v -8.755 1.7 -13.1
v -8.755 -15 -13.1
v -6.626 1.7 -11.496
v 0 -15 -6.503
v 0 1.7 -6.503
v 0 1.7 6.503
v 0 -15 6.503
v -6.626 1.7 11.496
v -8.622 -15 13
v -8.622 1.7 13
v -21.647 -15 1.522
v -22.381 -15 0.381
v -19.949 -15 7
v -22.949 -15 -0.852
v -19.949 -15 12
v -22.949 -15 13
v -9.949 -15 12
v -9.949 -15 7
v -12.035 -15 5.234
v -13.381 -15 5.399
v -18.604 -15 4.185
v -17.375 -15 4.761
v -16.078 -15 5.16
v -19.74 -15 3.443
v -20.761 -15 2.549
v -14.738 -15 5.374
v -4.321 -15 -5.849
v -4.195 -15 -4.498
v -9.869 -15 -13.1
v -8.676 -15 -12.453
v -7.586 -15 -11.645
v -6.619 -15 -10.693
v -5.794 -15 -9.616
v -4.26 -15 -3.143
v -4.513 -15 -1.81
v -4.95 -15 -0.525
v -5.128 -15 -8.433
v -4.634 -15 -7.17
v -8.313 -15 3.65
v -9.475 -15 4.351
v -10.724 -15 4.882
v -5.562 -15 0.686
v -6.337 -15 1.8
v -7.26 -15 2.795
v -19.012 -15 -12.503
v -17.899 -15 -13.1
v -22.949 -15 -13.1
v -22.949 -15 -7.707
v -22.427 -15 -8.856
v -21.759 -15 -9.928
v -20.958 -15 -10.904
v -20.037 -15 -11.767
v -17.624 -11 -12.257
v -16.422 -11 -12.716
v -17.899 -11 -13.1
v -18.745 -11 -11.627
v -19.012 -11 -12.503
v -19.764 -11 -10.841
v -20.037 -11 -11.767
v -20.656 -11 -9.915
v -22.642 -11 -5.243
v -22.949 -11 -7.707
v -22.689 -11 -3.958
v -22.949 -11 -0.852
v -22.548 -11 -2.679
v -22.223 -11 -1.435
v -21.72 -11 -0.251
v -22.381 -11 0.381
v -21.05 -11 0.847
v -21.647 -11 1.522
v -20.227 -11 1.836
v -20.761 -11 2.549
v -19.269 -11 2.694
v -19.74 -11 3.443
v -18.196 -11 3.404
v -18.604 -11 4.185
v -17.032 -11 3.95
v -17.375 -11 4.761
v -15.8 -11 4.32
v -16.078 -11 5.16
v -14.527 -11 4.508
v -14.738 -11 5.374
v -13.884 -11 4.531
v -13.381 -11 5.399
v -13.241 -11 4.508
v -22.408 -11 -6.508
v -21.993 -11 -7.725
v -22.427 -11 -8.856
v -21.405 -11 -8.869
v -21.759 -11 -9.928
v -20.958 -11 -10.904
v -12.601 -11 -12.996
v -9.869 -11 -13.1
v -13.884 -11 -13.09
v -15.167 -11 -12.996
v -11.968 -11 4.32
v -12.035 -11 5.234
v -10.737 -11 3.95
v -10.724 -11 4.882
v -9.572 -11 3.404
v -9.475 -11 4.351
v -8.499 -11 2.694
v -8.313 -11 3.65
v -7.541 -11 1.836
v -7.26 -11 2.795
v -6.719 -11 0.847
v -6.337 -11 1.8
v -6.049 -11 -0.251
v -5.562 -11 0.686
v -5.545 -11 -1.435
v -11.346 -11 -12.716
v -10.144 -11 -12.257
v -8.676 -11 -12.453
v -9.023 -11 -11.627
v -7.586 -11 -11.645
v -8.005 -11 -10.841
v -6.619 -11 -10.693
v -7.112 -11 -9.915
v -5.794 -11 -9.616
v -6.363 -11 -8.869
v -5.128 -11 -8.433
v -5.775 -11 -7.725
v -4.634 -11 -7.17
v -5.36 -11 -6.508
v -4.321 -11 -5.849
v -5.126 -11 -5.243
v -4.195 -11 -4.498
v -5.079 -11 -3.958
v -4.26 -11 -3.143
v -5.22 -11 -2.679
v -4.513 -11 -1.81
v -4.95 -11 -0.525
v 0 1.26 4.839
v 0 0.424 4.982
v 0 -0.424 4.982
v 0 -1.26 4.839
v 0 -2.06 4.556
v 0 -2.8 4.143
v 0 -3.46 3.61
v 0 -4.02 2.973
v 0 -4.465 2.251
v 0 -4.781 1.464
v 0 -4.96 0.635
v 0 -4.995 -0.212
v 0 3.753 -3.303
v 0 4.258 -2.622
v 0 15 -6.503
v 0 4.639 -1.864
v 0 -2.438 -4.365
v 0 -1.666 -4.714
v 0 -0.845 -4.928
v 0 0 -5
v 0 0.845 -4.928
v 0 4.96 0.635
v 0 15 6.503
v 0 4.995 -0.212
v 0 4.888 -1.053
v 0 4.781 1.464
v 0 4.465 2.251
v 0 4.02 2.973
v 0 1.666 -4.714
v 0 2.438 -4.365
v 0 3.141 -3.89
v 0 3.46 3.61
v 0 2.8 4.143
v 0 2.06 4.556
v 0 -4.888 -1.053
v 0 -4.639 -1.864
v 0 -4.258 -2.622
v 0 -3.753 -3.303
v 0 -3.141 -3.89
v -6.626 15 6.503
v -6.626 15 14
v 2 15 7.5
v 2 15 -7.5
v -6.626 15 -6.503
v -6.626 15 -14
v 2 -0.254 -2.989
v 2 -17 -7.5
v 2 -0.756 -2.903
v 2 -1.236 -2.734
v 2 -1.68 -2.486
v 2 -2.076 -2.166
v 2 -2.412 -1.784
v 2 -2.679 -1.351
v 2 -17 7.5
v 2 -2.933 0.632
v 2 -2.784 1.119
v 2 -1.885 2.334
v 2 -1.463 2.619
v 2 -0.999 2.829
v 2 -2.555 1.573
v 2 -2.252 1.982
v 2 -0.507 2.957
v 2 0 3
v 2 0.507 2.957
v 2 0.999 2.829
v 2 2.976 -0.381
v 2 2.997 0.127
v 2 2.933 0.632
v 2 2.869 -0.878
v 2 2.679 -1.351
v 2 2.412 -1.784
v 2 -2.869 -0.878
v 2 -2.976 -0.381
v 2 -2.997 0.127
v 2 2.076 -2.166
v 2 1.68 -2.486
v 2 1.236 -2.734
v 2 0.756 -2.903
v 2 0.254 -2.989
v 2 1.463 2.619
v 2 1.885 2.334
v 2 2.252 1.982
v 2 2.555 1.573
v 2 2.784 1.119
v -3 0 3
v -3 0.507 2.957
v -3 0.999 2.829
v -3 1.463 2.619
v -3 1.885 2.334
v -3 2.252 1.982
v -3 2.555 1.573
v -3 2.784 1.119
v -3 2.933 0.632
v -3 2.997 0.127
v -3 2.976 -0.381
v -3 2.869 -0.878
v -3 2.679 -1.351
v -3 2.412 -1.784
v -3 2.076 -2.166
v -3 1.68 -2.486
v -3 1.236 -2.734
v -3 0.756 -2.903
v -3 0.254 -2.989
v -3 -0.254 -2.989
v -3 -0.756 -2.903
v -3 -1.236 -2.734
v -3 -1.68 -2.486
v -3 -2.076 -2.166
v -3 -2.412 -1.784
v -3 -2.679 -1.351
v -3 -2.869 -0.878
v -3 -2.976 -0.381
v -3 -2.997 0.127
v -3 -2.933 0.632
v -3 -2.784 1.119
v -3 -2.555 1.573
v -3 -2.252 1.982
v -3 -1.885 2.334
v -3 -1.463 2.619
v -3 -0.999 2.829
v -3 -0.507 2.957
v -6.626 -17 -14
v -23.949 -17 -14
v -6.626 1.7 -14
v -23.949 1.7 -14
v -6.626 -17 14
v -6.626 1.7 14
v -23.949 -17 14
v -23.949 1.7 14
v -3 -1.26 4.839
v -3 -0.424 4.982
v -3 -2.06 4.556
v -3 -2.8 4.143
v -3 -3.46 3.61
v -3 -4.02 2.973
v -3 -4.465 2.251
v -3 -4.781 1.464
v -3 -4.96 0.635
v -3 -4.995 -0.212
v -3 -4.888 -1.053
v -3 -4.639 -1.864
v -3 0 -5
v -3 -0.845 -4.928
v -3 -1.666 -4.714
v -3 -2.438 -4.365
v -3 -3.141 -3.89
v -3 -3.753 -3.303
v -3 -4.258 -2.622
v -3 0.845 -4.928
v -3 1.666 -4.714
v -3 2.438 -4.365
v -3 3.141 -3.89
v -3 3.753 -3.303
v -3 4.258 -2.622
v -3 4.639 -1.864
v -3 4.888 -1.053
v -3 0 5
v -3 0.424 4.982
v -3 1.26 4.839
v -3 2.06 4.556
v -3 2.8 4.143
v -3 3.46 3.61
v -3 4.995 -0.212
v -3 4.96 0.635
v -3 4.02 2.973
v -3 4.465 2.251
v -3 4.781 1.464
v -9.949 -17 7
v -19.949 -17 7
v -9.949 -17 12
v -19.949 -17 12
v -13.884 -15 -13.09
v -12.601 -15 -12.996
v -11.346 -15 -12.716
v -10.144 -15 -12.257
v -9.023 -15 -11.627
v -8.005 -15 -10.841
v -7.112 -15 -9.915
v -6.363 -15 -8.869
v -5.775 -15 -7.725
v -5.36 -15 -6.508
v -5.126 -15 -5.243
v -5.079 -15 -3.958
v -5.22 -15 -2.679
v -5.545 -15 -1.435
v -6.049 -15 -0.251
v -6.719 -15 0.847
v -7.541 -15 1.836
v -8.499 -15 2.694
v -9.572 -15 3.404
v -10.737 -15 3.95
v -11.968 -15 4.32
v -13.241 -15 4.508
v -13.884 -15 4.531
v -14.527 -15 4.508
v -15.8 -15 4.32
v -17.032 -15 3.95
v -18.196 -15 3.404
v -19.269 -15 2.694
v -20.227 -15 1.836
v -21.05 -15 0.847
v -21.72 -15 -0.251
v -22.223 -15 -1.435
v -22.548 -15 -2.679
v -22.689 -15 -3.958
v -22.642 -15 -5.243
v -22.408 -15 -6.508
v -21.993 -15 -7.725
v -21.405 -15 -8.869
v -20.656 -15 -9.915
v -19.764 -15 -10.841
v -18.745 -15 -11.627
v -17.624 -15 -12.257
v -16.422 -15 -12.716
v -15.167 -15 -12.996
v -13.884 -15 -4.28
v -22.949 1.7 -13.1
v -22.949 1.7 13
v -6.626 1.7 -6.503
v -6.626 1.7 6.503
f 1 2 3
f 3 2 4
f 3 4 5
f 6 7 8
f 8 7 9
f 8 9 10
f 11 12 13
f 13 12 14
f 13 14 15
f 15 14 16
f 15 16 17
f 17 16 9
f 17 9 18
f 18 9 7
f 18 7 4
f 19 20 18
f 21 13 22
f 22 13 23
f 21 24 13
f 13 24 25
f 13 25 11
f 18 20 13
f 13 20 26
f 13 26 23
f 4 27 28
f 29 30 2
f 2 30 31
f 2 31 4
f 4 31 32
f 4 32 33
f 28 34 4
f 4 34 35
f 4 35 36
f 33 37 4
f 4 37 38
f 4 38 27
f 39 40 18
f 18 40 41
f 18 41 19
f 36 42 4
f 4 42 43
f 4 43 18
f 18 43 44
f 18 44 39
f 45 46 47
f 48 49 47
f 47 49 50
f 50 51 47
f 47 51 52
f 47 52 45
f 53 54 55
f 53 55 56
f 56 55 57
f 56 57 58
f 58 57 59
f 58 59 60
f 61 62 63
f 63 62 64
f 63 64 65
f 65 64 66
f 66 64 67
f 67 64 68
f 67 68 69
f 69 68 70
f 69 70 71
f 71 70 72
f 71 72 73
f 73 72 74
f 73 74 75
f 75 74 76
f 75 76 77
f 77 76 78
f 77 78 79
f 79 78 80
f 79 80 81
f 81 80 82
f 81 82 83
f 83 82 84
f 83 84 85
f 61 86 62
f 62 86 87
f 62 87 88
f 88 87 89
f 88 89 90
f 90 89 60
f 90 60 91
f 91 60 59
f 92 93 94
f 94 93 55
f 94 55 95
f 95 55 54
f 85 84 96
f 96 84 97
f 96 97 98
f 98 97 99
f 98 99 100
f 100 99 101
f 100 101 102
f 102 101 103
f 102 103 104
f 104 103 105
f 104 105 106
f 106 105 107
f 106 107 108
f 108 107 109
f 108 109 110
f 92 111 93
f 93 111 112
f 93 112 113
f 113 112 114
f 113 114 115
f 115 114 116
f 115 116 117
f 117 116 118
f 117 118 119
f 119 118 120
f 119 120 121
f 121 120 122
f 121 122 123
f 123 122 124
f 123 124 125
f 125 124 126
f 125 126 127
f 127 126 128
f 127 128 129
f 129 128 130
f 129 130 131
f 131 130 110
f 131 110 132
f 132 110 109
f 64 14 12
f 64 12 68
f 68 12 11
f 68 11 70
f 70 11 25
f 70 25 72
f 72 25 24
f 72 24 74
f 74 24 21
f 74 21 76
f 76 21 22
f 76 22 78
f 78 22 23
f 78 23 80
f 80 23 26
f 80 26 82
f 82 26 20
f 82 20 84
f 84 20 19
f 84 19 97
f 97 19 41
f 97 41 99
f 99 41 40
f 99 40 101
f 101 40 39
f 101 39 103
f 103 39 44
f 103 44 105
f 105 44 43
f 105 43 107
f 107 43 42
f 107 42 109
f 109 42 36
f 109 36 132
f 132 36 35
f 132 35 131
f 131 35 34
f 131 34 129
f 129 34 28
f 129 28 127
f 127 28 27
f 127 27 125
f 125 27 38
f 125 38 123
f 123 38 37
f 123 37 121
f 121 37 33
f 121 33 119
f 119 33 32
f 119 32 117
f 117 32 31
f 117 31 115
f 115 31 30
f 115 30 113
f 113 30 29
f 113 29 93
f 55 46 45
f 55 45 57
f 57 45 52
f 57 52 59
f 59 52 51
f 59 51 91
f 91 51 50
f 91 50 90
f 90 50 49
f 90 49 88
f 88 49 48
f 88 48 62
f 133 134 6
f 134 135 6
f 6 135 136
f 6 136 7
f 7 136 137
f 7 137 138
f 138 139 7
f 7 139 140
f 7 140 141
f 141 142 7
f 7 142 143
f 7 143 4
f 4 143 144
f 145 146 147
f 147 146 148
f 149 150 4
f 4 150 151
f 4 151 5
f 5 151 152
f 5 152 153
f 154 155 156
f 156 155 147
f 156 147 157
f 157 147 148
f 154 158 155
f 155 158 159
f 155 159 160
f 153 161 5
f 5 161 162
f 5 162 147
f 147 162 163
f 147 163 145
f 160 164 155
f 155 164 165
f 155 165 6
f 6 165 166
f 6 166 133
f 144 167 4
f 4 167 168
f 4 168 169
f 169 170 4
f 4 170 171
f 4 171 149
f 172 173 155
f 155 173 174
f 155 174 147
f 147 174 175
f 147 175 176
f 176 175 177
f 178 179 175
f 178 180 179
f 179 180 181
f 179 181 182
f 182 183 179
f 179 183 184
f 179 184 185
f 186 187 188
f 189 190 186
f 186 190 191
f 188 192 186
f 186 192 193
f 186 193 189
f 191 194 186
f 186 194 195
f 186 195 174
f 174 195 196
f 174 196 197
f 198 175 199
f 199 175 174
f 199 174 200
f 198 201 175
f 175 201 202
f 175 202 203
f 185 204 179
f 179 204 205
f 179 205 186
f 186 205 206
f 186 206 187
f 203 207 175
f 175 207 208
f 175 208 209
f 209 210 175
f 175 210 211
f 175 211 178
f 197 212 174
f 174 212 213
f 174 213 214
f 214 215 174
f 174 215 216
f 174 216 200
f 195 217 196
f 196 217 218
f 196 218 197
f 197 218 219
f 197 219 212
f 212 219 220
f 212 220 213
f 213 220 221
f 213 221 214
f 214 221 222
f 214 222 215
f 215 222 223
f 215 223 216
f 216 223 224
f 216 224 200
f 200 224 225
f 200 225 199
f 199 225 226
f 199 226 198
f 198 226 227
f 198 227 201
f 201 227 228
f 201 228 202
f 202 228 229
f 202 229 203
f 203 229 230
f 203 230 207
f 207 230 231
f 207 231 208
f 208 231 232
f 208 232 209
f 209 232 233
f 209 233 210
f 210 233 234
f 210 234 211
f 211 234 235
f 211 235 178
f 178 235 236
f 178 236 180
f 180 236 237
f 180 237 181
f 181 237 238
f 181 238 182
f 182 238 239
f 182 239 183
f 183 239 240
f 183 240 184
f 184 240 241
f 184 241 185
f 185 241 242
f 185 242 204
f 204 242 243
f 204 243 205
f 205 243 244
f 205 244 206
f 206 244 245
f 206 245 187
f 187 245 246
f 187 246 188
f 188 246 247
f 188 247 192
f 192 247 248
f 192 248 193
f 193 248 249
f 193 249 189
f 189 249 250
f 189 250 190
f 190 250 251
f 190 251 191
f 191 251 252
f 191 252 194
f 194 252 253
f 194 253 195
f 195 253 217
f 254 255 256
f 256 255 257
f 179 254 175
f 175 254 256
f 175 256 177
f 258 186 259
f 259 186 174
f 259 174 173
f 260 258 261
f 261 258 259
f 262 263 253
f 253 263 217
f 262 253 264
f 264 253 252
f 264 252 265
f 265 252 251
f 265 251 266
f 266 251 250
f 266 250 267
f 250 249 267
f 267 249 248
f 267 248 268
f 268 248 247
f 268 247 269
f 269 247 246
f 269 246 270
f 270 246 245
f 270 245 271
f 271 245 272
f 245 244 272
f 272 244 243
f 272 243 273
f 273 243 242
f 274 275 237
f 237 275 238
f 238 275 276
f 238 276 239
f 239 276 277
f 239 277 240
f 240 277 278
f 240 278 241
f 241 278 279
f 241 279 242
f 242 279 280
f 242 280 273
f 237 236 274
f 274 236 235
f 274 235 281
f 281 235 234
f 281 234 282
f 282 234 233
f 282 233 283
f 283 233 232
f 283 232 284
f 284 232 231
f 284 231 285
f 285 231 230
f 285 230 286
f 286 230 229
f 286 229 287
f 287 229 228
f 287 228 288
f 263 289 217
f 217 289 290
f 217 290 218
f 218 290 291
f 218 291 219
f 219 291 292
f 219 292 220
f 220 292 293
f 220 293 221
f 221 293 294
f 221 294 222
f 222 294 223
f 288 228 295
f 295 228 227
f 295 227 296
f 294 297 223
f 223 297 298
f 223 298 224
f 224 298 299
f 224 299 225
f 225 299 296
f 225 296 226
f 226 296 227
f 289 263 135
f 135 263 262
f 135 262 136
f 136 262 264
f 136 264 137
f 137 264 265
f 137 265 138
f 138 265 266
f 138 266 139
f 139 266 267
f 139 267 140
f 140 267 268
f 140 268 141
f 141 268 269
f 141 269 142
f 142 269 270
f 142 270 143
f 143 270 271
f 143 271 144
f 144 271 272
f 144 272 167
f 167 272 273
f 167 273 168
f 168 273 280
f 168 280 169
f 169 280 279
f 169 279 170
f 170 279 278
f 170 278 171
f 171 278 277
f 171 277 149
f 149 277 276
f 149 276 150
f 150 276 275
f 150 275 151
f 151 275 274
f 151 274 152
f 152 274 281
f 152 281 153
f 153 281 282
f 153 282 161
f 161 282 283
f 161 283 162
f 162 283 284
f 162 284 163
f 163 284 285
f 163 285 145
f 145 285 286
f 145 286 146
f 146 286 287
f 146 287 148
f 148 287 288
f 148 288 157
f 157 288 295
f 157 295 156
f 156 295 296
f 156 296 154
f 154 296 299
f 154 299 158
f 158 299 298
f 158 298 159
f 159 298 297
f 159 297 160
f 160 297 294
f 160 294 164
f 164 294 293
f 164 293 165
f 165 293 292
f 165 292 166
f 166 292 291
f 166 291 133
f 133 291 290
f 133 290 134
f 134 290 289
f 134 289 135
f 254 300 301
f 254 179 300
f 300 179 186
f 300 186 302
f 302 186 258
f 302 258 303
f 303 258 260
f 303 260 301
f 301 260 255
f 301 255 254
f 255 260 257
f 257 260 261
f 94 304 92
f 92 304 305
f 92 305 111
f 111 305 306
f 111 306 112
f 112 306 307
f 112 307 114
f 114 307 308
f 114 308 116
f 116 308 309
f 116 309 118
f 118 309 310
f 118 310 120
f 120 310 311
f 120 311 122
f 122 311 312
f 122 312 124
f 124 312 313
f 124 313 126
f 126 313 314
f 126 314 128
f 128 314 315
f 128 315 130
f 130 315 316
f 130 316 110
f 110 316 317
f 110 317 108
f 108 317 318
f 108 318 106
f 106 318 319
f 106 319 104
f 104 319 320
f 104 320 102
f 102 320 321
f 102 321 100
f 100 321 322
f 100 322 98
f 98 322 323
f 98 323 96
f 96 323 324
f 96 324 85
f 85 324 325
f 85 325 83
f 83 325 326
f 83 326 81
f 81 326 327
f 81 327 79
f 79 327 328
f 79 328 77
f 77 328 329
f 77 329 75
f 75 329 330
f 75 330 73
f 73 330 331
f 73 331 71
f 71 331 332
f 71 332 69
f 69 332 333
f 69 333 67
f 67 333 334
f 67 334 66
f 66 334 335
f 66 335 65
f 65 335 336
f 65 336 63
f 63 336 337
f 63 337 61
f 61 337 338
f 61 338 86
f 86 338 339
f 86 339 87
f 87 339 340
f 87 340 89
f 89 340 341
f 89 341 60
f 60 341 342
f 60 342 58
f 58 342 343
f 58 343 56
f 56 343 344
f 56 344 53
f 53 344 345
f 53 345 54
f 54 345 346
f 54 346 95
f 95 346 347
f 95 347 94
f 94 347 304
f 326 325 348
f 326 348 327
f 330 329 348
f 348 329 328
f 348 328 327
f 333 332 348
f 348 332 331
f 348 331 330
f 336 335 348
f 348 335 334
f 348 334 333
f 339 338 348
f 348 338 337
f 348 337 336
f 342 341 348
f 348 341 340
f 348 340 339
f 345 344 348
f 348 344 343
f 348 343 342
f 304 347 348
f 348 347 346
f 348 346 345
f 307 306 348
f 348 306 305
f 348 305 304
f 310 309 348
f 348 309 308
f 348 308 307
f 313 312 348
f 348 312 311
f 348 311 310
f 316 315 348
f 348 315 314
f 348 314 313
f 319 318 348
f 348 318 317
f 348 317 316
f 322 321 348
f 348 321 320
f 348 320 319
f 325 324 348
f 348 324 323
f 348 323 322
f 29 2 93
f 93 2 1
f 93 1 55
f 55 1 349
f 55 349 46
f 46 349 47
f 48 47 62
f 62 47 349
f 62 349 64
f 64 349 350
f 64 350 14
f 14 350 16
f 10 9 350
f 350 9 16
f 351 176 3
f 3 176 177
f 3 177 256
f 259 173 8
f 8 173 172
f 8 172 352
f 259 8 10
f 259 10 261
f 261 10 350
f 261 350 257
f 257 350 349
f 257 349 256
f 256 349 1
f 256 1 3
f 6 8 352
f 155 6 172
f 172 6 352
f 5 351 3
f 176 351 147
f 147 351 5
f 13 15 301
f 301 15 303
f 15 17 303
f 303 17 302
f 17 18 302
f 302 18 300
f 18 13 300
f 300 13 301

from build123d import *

# Parameters (mm, degrees)
SKETCH1_W           = 20
SKETCH1_H           = 30
BOSS_EXTRUDE1_DEPTH = 2
SKETCH2_R           = 3
CUT_EXTRUDE1_DEPTH  = 2
SKETCH4_W           = 2
SKETCH4_H           = 2.5
CUT_EXTRUDE2_DEPTH  = 32.685959036
BOSS_EXTRUDE2_DEPTH = 30
BOSS_EXTRUDE3_START = 3
SKETCH6_R           = 5
SKETCH6_R_2         = 3
BOSS_EXTRUDE3_DEPTH = 3
BOSS_EXTRUDE4_DEPTH = 2
SKETCH8_W           = 14
SKETCH8_H           = 28
BOSS_EXTRUDE5_DEPTH = 2
SKETCH9_R           = 9.691307823
SKETCH9_R_2         = 8.81055964
BOSS_EXTRUDE6_DEPTH = 4
BOSS_EXTRUDE7_DEPTH = 30
CUT_EXTRUDE3_DEPTH  = 41.577802203
BOSS_EXTRUDE8_DEPTH = 13.3
SKETCH17_W          = 10
SKETCH17_H          = 5
CUT_EXTRUDE5_DEPTH  = 2


with BuildPart() as part:
    # Sketch1 → Boss-Extrude1 (new body)
    with BuildSketch(Plane(origin=(0, 0, 0), x_dir=(0, 0, -1), z_dir=(1, 0, 0))):
        Rectangle(SKETCH1_W, SKETCH1_H)
    extrude(amount=BOSS_EXTRUDE1_DEPTH)

    # Sketch2 → Cut-Extrude1 (cut)
    with BuildSketch(Plane.ZY):
        Circle(SKETCH2_R)
    extrude(amount=-CUT_EXTRUDE1_DEPTH, mode=Mode.SUBTRACT)

    # Sketch4 → Cut-Extrude2 (cut, through all)
    with BuildSketch(Plane(origin=(0, 15, 0), x_dir=(1, 0, 0), z_dir=(0, 1, 0))):
        with Locations((1, 8.75)):
            Rectangle(SKETCH4_W, SKETCH4_H)
        with Locations((1, -8.75)):
            Rectangle(SKETCH4_W, SKETCH4_H)
    extrude(amount=-CUT_EXTRUDE2_DEPTH, mode=Mode.SUBTRACT)

    # Sketch5 → Boss-Extrude2 (add, through all)
    with BuildSketch(Plane(origin=(0, 15, 0), x_dir=(1, 0, 0), z_dir=(0, 1, 0))):
        Polygon((2, 7.5), (-6.625791341, 14), (-9.949071623, 14), (0, 6.502836784), align=None)
        Polygon((-6.625791341, -14), (-9.949071623, -14), (0, -6.502836784), (2, -7.5), align=None)
    extrude(amount=-BOSS_EXTRUDE2_DEPTH)

    # Sketch6 → Boss-Extrude3 (add)
    with BuildSketch(Plane.ZY.offset(BOSS_EXTRUDE3_START)):
        with Locations(Location((0, 0, 0), (0, 0, 180))):
            Circle(SKETCH6_R)
        Circle(SKETCH6_R_2, mode=Mode.SUBTRACT)
    extrude(amount=-BOSS_EXTRUDE3_DEPTH)

    # Sketch7 → Boss-Extrude4 (add)
    with BuildSketch(Plane.XZ.offset(15)):
        Polygon((-9.949071623, 14), (-6.625791341, 14), (2, 7.5), (2, -7.5), (-6.625791341, -14), (-9.949071623, -14), align=None)
    extrude(amount=BOSS_EXTRUDE4_DEPTH)

    # Sketch8 → Boss-Extrude5 (add)
    with BuildSketch(Plane.XZ.offset(17)):
        with Locations((-16.949071623, 0)):
            Rectangle(SKETCH8_W, SKETCH8_H)
    extrude(amount=-BOSS_EXTRUDE5_DEPTH)

    # Sketch9 → Boss-Extrude6 (add)
    with BuildSketch(Plane(origin=(0, -15, 0), x_dir=(1, 0, 0), z_dir=(0, 1, 0))):
        with Locations(Location((-13.884110901, 4.279502294, 0), (0, 0, 90))):
            Circle(SKETCH9_R)
        with Locations(Location((-13.884110901, 4.279502294, 0), (0, 0, 270))):
            Circle(SKETCH9_R_2, mode=Mode.SUBTRACT)
    extrude(amount=BOSS_EXTRUDE6_DEPTH)

    # Sketch10 → Boss-Extrude7 (add)
    with BuildSketch(Plane(origin=(0, -15, 0), x_dir=(1, 0, 0), z_dir=(0, 1, 0))):
        Polygon((-6.625791341, -14), (-6.625791341, -13), (-7.754589709, -13), (-22.949071623, -13), (-22.949071623, 13.1), (-7.754589709, 13.1), (-6.625791341, 13.1), (-6.625791341, 14), (-23.949071623, 14), (-23.949071623, -14), align=None)
    extrude(amount=BOSS_EXTRUDE7_DEPTH)

    # Sketch11 → Cut-Extrude3 (cut, through all)
    with BuildSketch(Plane(origin=(0, 0, -14), x_dir=(-1, 0, 0), z_dir=(0, 0, -1))):
        Polygon((16.934110901, 1.7), (23.949071623, 1.7), (23.949071623, 15), (6.625791341, 15), (6.625791341, 1.7), align=None)
    extrude(amount=-CUT_EXTRUDE3_DEPTH, mode=Mode.SUBTRACT)

    # Sketch13 → Boss-Extrude8 (add)
    with BuildSketch(Plane(origin=(0, 1.7, 0), x_dir=(1, 0, 0), z_dir=(0, 1, 0))):
        Polygon((-6.625791341, -14), (-6.625791341, -6.502836784), (0, -6.502836784), (0, -9.0071081), align=None)
        Polygon((0, 9.0071081), (-6.625791341, 14), (-6.625791341, 6.502836784), (0, 6.502836784), align=None)
    extrude(amount=BOSS_EXTRUDE8_DEPTH)

    # Sketch17 → Cut-Extrude5 (cut)
    with BuildSketch(Plane.XZ.offset(17)):
        with Locations((-14.949071623, 9.5)):
            Rectangle(SKETCH17_W, SKETCH17_H)
    extrude(amount=-CUT_EXTRUDE5_DEPTH, mode=Mode.SUBTRACT)


solid = part.part
